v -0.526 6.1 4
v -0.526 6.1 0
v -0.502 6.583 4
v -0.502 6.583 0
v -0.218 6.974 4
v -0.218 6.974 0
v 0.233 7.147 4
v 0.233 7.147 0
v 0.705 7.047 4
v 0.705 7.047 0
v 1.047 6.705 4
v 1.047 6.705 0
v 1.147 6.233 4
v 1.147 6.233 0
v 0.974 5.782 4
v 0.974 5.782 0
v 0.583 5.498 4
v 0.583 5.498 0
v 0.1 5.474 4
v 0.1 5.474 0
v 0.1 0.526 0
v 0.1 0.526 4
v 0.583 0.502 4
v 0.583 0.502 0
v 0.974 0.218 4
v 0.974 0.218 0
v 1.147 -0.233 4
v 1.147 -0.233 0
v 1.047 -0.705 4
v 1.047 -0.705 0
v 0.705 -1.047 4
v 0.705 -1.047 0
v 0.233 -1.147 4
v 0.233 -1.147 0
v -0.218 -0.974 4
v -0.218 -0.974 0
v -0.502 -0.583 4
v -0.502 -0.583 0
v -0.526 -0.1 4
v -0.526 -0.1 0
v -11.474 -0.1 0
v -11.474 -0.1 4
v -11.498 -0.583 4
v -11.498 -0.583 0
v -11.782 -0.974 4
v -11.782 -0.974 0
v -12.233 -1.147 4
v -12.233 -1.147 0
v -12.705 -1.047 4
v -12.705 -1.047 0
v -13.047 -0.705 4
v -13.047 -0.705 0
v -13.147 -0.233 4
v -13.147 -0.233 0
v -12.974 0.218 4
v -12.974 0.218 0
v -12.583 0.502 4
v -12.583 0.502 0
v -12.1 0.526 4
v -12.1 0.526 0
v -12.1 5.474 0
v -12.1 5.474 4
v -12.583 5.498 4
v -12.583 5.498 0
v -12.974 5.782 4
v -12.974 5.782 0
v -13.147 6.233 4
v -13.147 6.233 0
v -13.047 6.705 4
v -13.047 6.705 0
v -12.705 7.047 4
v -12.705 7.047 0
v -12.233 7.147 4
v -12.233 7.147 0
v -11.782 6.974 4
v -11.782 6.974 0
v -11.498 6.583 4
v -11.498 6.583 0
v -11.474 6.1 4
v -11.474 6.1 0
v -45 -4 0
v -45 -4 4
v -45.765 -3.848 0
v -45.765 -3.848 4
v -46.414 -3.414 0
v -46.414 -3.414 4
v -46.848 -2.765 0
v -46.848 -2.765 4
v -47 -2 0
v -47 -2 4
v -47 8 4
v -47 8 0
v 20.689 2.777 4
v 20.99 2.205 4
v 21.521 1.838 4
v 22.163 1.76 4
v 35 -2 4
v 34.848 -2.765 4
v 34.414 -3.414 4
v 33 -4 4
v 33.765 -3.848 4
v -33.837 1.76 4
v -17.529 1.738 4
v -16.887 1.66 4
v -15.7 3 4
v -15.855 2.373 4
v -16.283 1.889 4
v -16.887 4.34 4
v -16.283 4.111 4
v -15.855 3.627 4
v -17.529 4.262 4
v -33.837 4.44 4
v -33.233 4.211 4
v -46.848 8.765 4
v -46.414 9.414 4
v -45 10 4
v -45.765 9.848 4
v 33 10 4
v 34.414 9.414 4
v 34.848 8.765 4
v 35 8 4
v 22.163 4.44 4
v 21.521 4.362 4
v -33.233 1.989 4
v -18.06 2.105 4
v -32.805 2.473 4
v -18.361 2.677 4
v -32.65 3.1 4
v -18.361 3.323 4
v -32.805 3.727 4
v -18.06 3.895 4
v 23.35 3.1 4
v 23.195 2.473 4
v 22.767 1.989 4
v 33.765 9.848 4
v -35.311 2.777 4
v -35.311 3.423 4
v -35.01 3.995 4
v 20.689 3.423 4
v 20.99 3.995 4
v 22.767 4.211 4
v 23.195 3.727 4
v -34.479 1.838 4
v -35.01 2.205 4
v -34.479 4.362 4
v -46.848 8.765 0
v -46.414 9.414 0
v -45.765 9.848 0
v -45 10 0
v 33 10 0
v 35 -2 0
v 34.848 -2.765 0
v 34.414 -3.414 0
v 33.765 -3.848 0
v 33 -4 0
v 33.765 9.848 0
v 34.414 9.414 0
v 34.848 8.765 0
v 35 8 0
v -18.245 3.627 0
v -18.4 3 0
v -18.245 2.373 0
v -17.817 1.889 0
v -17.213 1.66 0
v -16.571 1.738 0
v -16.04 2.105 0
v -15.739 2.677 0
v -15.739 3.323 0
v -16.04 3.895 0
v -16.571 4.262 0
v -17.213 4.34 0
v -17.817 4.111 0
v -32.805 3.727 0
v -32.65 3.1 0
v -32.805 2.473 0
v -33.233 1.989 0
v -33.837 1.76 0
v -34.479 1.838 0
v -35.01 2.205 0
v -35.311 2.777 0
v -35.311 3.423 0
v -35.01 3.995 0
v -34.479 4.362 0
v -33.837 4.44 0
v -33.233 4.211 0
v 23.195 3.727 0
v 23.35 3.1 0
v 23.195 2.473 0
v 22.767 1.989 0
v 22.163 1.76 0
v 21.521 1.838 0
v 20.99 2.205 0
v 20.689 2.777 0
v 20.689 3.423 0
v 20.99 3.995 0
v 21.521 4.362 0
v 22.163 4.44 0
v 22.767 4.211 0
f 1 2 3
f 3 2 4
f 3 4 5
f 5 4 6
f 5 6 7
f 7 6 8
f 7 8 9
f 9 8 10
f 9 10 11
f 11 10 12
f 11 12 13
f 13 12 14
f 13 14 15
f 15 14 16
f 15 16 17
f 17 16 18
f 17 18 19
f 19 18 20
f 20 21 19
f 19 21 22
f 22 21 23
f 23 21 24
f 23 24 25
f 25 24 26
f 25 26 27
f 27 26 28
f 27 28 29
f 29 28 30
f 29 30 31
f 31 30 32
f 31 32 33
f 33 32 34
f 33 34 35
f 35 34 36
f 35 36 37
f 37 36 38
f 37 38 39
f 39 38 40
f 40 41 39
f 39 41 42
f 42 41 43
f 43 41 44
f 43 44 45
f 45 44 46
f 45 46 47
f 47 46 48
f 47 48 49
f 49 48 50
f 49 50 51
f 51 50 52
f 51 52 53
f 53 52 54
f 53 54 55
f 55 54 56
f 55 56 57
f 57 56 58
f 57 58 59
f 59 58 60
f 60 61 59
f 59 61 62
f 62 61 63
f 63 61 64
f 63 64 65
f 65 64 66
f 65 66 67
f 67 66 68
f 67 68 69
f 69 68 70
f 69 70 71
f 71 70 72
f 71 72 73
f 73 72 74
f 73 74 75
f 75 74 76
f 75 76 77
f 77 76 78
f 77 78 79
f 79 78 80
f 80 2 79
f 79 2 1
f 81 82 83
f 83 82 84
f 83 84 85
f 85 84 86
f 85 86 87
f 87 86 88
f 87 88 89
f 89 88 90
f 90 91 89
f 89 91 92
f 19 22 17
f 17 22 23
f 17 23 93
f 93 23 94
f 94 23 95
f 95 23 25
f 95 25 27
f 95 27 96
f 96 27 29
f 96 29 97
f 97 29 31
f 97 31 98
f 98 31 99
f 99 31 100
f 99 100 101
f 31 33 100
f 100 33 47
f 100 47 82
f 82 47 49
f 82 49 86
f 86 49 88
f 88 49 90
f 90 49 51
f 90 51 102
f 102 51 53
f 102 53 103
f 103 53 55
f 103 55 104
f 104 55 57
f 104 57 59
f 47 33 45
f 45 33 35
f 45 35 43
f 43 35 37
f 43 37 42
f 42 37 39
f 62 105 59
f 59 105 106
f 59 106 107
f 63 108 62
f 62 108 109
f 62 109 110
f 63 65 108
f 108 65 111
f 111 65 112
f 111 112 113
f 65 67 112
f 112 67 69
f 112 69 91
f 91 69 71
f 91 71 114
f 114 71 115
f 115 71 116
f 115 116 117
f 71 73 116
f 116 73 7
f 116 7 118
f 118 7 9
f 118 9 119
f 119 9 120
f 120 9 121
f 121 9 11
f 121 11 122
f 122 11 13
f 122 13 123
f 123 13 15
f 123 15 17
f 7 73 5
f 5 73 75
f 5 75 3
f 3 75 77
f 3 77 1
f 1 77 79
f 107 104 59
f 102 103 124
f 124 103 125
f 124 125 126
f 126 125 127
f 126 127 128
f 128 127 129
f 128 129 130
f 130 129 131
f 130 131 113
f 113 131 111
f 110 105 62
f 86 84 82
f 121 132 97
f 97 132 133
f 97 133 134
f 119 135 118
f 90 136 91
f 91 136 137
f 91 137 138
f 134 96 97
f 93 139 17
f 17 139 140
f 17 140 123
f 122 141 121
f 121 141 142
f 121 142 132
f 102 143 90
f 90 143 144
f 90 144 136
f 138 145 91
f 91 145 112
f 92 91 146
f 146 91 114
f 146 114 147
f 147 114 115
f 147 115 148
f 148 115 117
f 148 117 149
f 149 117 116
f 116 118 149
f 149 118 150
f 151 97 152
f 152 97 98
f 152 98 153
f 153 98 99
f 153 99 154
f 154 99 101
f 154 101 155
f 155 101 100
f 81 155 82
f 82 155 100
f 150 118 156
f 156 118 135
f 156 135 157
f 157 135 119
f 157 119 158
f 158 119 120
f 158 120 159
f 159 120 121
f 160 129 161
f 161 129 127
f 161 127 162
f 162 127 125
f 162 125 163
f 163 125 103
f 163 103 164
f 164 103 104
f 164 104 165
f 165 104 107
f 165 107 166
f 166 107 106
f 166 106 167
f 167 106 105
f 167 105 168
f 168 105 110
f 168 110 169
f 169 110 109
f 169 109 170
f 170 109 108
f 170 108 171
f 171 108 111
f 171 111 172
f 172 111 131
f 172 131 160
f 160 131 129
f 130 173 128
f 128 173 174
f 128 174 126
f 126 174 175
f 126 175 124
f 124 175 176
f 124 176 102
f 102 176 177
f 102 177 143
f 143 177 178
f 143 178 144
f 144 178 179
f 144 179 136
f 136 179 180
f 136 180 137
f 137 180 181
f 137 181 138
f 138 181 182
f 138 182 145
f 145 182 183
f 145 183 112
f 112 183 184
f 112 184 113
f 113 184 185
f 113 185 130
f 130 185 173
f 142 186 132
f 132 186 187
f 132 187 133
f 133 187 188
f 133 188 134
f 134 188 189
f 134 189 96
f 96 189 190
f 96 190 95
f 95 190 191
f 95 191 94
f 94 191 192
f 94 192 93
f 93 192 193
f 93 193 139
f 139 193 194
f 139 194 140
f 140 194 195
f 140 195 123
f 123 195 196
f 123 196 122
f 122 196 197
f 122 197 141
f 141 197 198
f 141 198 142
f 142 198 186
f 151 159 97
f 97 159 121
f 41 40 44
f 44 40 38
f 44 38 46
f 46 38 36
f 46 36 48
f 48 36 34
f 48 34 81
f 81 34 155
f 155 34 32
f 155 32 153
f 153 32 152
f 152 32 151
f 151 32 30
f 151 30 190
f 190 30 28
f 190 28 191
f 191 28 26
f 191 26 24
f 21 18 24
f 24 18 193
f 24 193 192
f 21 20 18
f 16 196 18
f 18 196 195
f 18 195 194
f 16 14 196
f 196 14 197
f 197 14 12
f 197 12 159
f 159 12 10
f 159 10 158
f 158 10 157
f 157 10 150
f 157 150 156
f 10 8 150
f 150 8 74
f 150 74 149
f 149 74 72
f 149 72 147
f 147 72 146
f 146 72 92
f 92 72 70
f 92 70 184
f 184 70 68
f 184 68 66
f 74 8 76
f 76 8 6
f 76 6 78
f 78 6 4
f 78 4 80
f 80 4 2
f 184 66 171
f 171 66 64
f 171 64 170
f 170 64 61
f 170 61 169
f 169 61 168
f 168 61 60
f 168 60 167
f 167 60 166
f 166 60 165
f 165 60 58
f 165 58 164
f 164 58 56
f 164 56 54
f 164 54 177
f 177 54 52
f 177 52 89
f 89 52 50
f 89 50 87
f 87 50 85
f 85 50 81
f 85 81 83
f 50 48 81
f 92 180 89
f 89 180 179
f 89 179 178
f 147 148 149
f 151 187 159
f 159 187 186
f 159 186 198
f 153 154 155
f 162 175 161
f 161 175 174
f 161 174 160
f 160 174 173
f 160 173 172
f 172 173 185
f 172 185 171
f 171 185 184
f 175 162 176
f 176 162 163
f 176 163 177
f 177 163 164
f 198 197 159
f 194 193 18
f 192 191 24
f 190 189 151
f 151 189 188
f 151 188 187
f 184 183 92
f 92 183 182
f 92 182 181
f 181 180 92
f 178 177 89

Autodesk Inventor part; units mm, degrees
ref_plane "YZ Plane" through (0, 0, 0) normal (1, 0, 0) x (0, 1, 0)
ref_plane "XZ Plane" through (0, 0, 0) normal (0, 1, 0) x (-1, 0, 0)
ref_plane "XY Plane" through (0, 0, 0) normal (0, 0, 1) x (1, 0, 0)
ref_plane "작업 평면1" through (0, 0, 0) normal (0, 0, 1) x (1, 0, 0)
sketch "스케치1" plane through (0, 0, 0) normal (0, 0, 1) x (1, 0, 0)
  line L0 (-12, 0) -> (0, 0) projected
  line L1 (0, 0) -> (0, 6) projected
  line L2 (-12, 6) -> (0, 6) projected
  line L3 (-12, 0) -> (-12, 6) projected
  line L4 (0.3, -0.3) -> (-12.3, -0.3)
  line L5 (-12.3, -0.3) -> (-12.3, 6.3)
  line L6 (-12.3, 6.3) -> (0.3, 6.3)
  line L7 (0.3, 6.3) -> (0.3, -0.3)
  line L8 (4, -4) -> (-16, -4)
  line L9 (-16, -4) -> (-16, 10)
  line L10 (-16, 10) -> (4, 10)
  line L11 (4, 10) -> (4, -4)
  line L12 (1, 6) -> (1, 0) projected
  line L13 (1, 0) -> (31, 0) projected
  line L14 (31, 0) -> (31, 6) projected
  line L15 (1, 6) -> (31, 6) projected
  circle A0 centre (22, 3.1) radius 1.35 projected
  line L16 (-13, 0) -> (-13, 6) projected
  line L17 (-43, 6) -> (-13, 6) projected
  line L18 (-43, 0) -> (-43, 6) projected
  line L19 (-43, 0) -> (-13, 0) projected
  circle A1 centre (-34, 3.1) radius 1.35 projected
  line L20 (31, 0) -> (-43, 0)
  line L21 (-43, 0) -> (-43, 6)
  line L22 (-43, 6) -> (31, 6)
  line L23 (31, 6) -> (31, 0)
  line L24 (-47, -4) -> (35, -4)
  line L25 (35, -4) -> (35, 10)
  line L26 (35, 10) -> (-47, 10)
  line L27 (-47, 10) -> (-47, -4)
  circle A2 centre (0.3, 6.3) radius 1.05
  circle A3 centre (0.3, -0.3) radius 1.05
  circle A4 centre (-12.3, -0.3) radius 1.05
  circle A5 centre (-12.3, 6.3) radius 1.05
  point P0 (0.3, 5.25)
  point P1 (0.3, 0.75)
  point P2 (-0.75, -0.3)
  point P3 (-11.25, -0.3)
  point P4 (-12.3, 0.75)
  point P5 (-12.3, 5.25)
  point P6 (-11.25, 6.3)
  point P7 (-0.75, 6.3)
  dimension "d0" = 0.3
  dimension "d1" = 4
  dimension "d4" = 2.1
  dimension "d5" = 2.1
  dimension "d6" = 2.1
  dimension "d7" = 2.1
extrude "돌출1" add sketch "스케치1" along normal blind 4 contours L4 A3 L13 L11 L8 L9 L19 A4 | A4 L16 A5 L5 | L19 L9 L17 A5 L16 A4 | L7 A2 L12 A3 | L19 L18 L17 L9 | L9 L24 L27 L26 L17 L18 L19 | A5 L17 L9 L10 L11 L15 A2 L6 | L12 A2 L15 L11 L13 A3 | L13 L14 L15 L11 L26 L25 L24 | L11 L15 L14 L13
sketch "스케치2" plane through (0, 0, 4) normal (0, 0, 1) x (1, 0, 0)
  line L0 (-13, 6) -> (-13, 0) projected
  line L1 (-42, 0) -> (-13, 0) projected
  line L2 (-42, 6) -> (-42, 0) projected
  line L3 (-42, 6) -> (-13, 6) projected
  circle A0 centre (-17.05, 3) radius 1.35 projected
  point P0 (0, 0)
extrude "돌출2" cut sketch "스케치2" against normal through all contours A0
fillet "모깎기1" radius 2 4 edges at (35, 10, 2) (35, -4, 2) (-47, 10, 2) (-47, -4, 2)
sketch "스케치3" plane through (0, 0, 4) normal (0, 0, 1) x (1, 0, 0)
  circle A0 centre (-17.05, 3) radius 1.35 projected
  arc A1 (-47, -2) -> (-45, -4) centre (-45, -2) ccw projected
  line L0 (-45, -4) -> (33, -4) projected
  arc A2 (33, -4) -> (35, -2) centre (33, -2) ccw projected
  line L1 (35, -2) -> (35, 8) projected
  arc A3 (35, 8) -> (33, 10) centre (33, 8) ccw projected
  line L2 (33, 10) -> (-45, 10) projected
  arc A4 (-45, 10) -> (-47, 8) centre (-45, 8) ccw projected
  line L3 (-47, 8) -> (-47, -2) projected
  circle A5 centre (22, 3.1) radius 1.35 projected
  circle A6 centre (-34, 3.1) radius 1.35 projected
  arc A7 (0.3, 5.25) -> (-0.75, 6.3) centre (0.3, 6.3) ccw projected
  line L4 (0.3, 5.25) -> (0.3, 0.75) projected
  arc A8 (-0.75, -0.3) -> (0.3, 0.75) centre (0.3, -0.3) ccw projected
  line L5 (-0.75, -0.3) -> (-11.25, -0.3) projected
  arc A9 (-12.3, 0.75) -> (-11.25, -0.3) centre (-12.3, -0.3) ccw projected
  line L6 (-12.3, 0.75) -> (-12.3, 5.25) projected
  arc A10 (-11.25, 6.3) -> (-12.3, 5.25) centre (-12.3, 6.3) ccw projected
  line L7 (-11.25, 6.3) -> (-0.75, 6.3) projected
  line L8 (0.1, 0.5261) -> (0.1, 5.4739)
  arc A11 (0.1, 5.4739) -> (-0.5261, 6.1) centre (0.3, 6.3) ccw
  line L9 (-0.5261, 6.1) -> (-11.4739, 6.1)
  arc A12 (-11.4739, 6.1) -> (-12.1, 5.4739) centre (-12.3, 6.3) ccw
  line L10 (-12.1, 5.4739) -> (-12.1, 0.5261)
  arc A13 (-12.1, 0.5261) -> (-11.4739, -0.1) centre (-12.3, -0.3) ccw
  line L11 (-11.4739, -0.1) -> (-0.5261, -0.1)
  arc A14 (-0.5261, -0.1) -> (0.1, 0.5261) centre (0.3, -0.3) ccw
  point P0 (0, 0)
  dimension "d11" = 0.2
extrude "돌출3" add sketch "스케치3" against normal up to surface (4 mm away) contours L4 A8 L5 A9 L6 A10 L7 A7
properties part number "zig9"
